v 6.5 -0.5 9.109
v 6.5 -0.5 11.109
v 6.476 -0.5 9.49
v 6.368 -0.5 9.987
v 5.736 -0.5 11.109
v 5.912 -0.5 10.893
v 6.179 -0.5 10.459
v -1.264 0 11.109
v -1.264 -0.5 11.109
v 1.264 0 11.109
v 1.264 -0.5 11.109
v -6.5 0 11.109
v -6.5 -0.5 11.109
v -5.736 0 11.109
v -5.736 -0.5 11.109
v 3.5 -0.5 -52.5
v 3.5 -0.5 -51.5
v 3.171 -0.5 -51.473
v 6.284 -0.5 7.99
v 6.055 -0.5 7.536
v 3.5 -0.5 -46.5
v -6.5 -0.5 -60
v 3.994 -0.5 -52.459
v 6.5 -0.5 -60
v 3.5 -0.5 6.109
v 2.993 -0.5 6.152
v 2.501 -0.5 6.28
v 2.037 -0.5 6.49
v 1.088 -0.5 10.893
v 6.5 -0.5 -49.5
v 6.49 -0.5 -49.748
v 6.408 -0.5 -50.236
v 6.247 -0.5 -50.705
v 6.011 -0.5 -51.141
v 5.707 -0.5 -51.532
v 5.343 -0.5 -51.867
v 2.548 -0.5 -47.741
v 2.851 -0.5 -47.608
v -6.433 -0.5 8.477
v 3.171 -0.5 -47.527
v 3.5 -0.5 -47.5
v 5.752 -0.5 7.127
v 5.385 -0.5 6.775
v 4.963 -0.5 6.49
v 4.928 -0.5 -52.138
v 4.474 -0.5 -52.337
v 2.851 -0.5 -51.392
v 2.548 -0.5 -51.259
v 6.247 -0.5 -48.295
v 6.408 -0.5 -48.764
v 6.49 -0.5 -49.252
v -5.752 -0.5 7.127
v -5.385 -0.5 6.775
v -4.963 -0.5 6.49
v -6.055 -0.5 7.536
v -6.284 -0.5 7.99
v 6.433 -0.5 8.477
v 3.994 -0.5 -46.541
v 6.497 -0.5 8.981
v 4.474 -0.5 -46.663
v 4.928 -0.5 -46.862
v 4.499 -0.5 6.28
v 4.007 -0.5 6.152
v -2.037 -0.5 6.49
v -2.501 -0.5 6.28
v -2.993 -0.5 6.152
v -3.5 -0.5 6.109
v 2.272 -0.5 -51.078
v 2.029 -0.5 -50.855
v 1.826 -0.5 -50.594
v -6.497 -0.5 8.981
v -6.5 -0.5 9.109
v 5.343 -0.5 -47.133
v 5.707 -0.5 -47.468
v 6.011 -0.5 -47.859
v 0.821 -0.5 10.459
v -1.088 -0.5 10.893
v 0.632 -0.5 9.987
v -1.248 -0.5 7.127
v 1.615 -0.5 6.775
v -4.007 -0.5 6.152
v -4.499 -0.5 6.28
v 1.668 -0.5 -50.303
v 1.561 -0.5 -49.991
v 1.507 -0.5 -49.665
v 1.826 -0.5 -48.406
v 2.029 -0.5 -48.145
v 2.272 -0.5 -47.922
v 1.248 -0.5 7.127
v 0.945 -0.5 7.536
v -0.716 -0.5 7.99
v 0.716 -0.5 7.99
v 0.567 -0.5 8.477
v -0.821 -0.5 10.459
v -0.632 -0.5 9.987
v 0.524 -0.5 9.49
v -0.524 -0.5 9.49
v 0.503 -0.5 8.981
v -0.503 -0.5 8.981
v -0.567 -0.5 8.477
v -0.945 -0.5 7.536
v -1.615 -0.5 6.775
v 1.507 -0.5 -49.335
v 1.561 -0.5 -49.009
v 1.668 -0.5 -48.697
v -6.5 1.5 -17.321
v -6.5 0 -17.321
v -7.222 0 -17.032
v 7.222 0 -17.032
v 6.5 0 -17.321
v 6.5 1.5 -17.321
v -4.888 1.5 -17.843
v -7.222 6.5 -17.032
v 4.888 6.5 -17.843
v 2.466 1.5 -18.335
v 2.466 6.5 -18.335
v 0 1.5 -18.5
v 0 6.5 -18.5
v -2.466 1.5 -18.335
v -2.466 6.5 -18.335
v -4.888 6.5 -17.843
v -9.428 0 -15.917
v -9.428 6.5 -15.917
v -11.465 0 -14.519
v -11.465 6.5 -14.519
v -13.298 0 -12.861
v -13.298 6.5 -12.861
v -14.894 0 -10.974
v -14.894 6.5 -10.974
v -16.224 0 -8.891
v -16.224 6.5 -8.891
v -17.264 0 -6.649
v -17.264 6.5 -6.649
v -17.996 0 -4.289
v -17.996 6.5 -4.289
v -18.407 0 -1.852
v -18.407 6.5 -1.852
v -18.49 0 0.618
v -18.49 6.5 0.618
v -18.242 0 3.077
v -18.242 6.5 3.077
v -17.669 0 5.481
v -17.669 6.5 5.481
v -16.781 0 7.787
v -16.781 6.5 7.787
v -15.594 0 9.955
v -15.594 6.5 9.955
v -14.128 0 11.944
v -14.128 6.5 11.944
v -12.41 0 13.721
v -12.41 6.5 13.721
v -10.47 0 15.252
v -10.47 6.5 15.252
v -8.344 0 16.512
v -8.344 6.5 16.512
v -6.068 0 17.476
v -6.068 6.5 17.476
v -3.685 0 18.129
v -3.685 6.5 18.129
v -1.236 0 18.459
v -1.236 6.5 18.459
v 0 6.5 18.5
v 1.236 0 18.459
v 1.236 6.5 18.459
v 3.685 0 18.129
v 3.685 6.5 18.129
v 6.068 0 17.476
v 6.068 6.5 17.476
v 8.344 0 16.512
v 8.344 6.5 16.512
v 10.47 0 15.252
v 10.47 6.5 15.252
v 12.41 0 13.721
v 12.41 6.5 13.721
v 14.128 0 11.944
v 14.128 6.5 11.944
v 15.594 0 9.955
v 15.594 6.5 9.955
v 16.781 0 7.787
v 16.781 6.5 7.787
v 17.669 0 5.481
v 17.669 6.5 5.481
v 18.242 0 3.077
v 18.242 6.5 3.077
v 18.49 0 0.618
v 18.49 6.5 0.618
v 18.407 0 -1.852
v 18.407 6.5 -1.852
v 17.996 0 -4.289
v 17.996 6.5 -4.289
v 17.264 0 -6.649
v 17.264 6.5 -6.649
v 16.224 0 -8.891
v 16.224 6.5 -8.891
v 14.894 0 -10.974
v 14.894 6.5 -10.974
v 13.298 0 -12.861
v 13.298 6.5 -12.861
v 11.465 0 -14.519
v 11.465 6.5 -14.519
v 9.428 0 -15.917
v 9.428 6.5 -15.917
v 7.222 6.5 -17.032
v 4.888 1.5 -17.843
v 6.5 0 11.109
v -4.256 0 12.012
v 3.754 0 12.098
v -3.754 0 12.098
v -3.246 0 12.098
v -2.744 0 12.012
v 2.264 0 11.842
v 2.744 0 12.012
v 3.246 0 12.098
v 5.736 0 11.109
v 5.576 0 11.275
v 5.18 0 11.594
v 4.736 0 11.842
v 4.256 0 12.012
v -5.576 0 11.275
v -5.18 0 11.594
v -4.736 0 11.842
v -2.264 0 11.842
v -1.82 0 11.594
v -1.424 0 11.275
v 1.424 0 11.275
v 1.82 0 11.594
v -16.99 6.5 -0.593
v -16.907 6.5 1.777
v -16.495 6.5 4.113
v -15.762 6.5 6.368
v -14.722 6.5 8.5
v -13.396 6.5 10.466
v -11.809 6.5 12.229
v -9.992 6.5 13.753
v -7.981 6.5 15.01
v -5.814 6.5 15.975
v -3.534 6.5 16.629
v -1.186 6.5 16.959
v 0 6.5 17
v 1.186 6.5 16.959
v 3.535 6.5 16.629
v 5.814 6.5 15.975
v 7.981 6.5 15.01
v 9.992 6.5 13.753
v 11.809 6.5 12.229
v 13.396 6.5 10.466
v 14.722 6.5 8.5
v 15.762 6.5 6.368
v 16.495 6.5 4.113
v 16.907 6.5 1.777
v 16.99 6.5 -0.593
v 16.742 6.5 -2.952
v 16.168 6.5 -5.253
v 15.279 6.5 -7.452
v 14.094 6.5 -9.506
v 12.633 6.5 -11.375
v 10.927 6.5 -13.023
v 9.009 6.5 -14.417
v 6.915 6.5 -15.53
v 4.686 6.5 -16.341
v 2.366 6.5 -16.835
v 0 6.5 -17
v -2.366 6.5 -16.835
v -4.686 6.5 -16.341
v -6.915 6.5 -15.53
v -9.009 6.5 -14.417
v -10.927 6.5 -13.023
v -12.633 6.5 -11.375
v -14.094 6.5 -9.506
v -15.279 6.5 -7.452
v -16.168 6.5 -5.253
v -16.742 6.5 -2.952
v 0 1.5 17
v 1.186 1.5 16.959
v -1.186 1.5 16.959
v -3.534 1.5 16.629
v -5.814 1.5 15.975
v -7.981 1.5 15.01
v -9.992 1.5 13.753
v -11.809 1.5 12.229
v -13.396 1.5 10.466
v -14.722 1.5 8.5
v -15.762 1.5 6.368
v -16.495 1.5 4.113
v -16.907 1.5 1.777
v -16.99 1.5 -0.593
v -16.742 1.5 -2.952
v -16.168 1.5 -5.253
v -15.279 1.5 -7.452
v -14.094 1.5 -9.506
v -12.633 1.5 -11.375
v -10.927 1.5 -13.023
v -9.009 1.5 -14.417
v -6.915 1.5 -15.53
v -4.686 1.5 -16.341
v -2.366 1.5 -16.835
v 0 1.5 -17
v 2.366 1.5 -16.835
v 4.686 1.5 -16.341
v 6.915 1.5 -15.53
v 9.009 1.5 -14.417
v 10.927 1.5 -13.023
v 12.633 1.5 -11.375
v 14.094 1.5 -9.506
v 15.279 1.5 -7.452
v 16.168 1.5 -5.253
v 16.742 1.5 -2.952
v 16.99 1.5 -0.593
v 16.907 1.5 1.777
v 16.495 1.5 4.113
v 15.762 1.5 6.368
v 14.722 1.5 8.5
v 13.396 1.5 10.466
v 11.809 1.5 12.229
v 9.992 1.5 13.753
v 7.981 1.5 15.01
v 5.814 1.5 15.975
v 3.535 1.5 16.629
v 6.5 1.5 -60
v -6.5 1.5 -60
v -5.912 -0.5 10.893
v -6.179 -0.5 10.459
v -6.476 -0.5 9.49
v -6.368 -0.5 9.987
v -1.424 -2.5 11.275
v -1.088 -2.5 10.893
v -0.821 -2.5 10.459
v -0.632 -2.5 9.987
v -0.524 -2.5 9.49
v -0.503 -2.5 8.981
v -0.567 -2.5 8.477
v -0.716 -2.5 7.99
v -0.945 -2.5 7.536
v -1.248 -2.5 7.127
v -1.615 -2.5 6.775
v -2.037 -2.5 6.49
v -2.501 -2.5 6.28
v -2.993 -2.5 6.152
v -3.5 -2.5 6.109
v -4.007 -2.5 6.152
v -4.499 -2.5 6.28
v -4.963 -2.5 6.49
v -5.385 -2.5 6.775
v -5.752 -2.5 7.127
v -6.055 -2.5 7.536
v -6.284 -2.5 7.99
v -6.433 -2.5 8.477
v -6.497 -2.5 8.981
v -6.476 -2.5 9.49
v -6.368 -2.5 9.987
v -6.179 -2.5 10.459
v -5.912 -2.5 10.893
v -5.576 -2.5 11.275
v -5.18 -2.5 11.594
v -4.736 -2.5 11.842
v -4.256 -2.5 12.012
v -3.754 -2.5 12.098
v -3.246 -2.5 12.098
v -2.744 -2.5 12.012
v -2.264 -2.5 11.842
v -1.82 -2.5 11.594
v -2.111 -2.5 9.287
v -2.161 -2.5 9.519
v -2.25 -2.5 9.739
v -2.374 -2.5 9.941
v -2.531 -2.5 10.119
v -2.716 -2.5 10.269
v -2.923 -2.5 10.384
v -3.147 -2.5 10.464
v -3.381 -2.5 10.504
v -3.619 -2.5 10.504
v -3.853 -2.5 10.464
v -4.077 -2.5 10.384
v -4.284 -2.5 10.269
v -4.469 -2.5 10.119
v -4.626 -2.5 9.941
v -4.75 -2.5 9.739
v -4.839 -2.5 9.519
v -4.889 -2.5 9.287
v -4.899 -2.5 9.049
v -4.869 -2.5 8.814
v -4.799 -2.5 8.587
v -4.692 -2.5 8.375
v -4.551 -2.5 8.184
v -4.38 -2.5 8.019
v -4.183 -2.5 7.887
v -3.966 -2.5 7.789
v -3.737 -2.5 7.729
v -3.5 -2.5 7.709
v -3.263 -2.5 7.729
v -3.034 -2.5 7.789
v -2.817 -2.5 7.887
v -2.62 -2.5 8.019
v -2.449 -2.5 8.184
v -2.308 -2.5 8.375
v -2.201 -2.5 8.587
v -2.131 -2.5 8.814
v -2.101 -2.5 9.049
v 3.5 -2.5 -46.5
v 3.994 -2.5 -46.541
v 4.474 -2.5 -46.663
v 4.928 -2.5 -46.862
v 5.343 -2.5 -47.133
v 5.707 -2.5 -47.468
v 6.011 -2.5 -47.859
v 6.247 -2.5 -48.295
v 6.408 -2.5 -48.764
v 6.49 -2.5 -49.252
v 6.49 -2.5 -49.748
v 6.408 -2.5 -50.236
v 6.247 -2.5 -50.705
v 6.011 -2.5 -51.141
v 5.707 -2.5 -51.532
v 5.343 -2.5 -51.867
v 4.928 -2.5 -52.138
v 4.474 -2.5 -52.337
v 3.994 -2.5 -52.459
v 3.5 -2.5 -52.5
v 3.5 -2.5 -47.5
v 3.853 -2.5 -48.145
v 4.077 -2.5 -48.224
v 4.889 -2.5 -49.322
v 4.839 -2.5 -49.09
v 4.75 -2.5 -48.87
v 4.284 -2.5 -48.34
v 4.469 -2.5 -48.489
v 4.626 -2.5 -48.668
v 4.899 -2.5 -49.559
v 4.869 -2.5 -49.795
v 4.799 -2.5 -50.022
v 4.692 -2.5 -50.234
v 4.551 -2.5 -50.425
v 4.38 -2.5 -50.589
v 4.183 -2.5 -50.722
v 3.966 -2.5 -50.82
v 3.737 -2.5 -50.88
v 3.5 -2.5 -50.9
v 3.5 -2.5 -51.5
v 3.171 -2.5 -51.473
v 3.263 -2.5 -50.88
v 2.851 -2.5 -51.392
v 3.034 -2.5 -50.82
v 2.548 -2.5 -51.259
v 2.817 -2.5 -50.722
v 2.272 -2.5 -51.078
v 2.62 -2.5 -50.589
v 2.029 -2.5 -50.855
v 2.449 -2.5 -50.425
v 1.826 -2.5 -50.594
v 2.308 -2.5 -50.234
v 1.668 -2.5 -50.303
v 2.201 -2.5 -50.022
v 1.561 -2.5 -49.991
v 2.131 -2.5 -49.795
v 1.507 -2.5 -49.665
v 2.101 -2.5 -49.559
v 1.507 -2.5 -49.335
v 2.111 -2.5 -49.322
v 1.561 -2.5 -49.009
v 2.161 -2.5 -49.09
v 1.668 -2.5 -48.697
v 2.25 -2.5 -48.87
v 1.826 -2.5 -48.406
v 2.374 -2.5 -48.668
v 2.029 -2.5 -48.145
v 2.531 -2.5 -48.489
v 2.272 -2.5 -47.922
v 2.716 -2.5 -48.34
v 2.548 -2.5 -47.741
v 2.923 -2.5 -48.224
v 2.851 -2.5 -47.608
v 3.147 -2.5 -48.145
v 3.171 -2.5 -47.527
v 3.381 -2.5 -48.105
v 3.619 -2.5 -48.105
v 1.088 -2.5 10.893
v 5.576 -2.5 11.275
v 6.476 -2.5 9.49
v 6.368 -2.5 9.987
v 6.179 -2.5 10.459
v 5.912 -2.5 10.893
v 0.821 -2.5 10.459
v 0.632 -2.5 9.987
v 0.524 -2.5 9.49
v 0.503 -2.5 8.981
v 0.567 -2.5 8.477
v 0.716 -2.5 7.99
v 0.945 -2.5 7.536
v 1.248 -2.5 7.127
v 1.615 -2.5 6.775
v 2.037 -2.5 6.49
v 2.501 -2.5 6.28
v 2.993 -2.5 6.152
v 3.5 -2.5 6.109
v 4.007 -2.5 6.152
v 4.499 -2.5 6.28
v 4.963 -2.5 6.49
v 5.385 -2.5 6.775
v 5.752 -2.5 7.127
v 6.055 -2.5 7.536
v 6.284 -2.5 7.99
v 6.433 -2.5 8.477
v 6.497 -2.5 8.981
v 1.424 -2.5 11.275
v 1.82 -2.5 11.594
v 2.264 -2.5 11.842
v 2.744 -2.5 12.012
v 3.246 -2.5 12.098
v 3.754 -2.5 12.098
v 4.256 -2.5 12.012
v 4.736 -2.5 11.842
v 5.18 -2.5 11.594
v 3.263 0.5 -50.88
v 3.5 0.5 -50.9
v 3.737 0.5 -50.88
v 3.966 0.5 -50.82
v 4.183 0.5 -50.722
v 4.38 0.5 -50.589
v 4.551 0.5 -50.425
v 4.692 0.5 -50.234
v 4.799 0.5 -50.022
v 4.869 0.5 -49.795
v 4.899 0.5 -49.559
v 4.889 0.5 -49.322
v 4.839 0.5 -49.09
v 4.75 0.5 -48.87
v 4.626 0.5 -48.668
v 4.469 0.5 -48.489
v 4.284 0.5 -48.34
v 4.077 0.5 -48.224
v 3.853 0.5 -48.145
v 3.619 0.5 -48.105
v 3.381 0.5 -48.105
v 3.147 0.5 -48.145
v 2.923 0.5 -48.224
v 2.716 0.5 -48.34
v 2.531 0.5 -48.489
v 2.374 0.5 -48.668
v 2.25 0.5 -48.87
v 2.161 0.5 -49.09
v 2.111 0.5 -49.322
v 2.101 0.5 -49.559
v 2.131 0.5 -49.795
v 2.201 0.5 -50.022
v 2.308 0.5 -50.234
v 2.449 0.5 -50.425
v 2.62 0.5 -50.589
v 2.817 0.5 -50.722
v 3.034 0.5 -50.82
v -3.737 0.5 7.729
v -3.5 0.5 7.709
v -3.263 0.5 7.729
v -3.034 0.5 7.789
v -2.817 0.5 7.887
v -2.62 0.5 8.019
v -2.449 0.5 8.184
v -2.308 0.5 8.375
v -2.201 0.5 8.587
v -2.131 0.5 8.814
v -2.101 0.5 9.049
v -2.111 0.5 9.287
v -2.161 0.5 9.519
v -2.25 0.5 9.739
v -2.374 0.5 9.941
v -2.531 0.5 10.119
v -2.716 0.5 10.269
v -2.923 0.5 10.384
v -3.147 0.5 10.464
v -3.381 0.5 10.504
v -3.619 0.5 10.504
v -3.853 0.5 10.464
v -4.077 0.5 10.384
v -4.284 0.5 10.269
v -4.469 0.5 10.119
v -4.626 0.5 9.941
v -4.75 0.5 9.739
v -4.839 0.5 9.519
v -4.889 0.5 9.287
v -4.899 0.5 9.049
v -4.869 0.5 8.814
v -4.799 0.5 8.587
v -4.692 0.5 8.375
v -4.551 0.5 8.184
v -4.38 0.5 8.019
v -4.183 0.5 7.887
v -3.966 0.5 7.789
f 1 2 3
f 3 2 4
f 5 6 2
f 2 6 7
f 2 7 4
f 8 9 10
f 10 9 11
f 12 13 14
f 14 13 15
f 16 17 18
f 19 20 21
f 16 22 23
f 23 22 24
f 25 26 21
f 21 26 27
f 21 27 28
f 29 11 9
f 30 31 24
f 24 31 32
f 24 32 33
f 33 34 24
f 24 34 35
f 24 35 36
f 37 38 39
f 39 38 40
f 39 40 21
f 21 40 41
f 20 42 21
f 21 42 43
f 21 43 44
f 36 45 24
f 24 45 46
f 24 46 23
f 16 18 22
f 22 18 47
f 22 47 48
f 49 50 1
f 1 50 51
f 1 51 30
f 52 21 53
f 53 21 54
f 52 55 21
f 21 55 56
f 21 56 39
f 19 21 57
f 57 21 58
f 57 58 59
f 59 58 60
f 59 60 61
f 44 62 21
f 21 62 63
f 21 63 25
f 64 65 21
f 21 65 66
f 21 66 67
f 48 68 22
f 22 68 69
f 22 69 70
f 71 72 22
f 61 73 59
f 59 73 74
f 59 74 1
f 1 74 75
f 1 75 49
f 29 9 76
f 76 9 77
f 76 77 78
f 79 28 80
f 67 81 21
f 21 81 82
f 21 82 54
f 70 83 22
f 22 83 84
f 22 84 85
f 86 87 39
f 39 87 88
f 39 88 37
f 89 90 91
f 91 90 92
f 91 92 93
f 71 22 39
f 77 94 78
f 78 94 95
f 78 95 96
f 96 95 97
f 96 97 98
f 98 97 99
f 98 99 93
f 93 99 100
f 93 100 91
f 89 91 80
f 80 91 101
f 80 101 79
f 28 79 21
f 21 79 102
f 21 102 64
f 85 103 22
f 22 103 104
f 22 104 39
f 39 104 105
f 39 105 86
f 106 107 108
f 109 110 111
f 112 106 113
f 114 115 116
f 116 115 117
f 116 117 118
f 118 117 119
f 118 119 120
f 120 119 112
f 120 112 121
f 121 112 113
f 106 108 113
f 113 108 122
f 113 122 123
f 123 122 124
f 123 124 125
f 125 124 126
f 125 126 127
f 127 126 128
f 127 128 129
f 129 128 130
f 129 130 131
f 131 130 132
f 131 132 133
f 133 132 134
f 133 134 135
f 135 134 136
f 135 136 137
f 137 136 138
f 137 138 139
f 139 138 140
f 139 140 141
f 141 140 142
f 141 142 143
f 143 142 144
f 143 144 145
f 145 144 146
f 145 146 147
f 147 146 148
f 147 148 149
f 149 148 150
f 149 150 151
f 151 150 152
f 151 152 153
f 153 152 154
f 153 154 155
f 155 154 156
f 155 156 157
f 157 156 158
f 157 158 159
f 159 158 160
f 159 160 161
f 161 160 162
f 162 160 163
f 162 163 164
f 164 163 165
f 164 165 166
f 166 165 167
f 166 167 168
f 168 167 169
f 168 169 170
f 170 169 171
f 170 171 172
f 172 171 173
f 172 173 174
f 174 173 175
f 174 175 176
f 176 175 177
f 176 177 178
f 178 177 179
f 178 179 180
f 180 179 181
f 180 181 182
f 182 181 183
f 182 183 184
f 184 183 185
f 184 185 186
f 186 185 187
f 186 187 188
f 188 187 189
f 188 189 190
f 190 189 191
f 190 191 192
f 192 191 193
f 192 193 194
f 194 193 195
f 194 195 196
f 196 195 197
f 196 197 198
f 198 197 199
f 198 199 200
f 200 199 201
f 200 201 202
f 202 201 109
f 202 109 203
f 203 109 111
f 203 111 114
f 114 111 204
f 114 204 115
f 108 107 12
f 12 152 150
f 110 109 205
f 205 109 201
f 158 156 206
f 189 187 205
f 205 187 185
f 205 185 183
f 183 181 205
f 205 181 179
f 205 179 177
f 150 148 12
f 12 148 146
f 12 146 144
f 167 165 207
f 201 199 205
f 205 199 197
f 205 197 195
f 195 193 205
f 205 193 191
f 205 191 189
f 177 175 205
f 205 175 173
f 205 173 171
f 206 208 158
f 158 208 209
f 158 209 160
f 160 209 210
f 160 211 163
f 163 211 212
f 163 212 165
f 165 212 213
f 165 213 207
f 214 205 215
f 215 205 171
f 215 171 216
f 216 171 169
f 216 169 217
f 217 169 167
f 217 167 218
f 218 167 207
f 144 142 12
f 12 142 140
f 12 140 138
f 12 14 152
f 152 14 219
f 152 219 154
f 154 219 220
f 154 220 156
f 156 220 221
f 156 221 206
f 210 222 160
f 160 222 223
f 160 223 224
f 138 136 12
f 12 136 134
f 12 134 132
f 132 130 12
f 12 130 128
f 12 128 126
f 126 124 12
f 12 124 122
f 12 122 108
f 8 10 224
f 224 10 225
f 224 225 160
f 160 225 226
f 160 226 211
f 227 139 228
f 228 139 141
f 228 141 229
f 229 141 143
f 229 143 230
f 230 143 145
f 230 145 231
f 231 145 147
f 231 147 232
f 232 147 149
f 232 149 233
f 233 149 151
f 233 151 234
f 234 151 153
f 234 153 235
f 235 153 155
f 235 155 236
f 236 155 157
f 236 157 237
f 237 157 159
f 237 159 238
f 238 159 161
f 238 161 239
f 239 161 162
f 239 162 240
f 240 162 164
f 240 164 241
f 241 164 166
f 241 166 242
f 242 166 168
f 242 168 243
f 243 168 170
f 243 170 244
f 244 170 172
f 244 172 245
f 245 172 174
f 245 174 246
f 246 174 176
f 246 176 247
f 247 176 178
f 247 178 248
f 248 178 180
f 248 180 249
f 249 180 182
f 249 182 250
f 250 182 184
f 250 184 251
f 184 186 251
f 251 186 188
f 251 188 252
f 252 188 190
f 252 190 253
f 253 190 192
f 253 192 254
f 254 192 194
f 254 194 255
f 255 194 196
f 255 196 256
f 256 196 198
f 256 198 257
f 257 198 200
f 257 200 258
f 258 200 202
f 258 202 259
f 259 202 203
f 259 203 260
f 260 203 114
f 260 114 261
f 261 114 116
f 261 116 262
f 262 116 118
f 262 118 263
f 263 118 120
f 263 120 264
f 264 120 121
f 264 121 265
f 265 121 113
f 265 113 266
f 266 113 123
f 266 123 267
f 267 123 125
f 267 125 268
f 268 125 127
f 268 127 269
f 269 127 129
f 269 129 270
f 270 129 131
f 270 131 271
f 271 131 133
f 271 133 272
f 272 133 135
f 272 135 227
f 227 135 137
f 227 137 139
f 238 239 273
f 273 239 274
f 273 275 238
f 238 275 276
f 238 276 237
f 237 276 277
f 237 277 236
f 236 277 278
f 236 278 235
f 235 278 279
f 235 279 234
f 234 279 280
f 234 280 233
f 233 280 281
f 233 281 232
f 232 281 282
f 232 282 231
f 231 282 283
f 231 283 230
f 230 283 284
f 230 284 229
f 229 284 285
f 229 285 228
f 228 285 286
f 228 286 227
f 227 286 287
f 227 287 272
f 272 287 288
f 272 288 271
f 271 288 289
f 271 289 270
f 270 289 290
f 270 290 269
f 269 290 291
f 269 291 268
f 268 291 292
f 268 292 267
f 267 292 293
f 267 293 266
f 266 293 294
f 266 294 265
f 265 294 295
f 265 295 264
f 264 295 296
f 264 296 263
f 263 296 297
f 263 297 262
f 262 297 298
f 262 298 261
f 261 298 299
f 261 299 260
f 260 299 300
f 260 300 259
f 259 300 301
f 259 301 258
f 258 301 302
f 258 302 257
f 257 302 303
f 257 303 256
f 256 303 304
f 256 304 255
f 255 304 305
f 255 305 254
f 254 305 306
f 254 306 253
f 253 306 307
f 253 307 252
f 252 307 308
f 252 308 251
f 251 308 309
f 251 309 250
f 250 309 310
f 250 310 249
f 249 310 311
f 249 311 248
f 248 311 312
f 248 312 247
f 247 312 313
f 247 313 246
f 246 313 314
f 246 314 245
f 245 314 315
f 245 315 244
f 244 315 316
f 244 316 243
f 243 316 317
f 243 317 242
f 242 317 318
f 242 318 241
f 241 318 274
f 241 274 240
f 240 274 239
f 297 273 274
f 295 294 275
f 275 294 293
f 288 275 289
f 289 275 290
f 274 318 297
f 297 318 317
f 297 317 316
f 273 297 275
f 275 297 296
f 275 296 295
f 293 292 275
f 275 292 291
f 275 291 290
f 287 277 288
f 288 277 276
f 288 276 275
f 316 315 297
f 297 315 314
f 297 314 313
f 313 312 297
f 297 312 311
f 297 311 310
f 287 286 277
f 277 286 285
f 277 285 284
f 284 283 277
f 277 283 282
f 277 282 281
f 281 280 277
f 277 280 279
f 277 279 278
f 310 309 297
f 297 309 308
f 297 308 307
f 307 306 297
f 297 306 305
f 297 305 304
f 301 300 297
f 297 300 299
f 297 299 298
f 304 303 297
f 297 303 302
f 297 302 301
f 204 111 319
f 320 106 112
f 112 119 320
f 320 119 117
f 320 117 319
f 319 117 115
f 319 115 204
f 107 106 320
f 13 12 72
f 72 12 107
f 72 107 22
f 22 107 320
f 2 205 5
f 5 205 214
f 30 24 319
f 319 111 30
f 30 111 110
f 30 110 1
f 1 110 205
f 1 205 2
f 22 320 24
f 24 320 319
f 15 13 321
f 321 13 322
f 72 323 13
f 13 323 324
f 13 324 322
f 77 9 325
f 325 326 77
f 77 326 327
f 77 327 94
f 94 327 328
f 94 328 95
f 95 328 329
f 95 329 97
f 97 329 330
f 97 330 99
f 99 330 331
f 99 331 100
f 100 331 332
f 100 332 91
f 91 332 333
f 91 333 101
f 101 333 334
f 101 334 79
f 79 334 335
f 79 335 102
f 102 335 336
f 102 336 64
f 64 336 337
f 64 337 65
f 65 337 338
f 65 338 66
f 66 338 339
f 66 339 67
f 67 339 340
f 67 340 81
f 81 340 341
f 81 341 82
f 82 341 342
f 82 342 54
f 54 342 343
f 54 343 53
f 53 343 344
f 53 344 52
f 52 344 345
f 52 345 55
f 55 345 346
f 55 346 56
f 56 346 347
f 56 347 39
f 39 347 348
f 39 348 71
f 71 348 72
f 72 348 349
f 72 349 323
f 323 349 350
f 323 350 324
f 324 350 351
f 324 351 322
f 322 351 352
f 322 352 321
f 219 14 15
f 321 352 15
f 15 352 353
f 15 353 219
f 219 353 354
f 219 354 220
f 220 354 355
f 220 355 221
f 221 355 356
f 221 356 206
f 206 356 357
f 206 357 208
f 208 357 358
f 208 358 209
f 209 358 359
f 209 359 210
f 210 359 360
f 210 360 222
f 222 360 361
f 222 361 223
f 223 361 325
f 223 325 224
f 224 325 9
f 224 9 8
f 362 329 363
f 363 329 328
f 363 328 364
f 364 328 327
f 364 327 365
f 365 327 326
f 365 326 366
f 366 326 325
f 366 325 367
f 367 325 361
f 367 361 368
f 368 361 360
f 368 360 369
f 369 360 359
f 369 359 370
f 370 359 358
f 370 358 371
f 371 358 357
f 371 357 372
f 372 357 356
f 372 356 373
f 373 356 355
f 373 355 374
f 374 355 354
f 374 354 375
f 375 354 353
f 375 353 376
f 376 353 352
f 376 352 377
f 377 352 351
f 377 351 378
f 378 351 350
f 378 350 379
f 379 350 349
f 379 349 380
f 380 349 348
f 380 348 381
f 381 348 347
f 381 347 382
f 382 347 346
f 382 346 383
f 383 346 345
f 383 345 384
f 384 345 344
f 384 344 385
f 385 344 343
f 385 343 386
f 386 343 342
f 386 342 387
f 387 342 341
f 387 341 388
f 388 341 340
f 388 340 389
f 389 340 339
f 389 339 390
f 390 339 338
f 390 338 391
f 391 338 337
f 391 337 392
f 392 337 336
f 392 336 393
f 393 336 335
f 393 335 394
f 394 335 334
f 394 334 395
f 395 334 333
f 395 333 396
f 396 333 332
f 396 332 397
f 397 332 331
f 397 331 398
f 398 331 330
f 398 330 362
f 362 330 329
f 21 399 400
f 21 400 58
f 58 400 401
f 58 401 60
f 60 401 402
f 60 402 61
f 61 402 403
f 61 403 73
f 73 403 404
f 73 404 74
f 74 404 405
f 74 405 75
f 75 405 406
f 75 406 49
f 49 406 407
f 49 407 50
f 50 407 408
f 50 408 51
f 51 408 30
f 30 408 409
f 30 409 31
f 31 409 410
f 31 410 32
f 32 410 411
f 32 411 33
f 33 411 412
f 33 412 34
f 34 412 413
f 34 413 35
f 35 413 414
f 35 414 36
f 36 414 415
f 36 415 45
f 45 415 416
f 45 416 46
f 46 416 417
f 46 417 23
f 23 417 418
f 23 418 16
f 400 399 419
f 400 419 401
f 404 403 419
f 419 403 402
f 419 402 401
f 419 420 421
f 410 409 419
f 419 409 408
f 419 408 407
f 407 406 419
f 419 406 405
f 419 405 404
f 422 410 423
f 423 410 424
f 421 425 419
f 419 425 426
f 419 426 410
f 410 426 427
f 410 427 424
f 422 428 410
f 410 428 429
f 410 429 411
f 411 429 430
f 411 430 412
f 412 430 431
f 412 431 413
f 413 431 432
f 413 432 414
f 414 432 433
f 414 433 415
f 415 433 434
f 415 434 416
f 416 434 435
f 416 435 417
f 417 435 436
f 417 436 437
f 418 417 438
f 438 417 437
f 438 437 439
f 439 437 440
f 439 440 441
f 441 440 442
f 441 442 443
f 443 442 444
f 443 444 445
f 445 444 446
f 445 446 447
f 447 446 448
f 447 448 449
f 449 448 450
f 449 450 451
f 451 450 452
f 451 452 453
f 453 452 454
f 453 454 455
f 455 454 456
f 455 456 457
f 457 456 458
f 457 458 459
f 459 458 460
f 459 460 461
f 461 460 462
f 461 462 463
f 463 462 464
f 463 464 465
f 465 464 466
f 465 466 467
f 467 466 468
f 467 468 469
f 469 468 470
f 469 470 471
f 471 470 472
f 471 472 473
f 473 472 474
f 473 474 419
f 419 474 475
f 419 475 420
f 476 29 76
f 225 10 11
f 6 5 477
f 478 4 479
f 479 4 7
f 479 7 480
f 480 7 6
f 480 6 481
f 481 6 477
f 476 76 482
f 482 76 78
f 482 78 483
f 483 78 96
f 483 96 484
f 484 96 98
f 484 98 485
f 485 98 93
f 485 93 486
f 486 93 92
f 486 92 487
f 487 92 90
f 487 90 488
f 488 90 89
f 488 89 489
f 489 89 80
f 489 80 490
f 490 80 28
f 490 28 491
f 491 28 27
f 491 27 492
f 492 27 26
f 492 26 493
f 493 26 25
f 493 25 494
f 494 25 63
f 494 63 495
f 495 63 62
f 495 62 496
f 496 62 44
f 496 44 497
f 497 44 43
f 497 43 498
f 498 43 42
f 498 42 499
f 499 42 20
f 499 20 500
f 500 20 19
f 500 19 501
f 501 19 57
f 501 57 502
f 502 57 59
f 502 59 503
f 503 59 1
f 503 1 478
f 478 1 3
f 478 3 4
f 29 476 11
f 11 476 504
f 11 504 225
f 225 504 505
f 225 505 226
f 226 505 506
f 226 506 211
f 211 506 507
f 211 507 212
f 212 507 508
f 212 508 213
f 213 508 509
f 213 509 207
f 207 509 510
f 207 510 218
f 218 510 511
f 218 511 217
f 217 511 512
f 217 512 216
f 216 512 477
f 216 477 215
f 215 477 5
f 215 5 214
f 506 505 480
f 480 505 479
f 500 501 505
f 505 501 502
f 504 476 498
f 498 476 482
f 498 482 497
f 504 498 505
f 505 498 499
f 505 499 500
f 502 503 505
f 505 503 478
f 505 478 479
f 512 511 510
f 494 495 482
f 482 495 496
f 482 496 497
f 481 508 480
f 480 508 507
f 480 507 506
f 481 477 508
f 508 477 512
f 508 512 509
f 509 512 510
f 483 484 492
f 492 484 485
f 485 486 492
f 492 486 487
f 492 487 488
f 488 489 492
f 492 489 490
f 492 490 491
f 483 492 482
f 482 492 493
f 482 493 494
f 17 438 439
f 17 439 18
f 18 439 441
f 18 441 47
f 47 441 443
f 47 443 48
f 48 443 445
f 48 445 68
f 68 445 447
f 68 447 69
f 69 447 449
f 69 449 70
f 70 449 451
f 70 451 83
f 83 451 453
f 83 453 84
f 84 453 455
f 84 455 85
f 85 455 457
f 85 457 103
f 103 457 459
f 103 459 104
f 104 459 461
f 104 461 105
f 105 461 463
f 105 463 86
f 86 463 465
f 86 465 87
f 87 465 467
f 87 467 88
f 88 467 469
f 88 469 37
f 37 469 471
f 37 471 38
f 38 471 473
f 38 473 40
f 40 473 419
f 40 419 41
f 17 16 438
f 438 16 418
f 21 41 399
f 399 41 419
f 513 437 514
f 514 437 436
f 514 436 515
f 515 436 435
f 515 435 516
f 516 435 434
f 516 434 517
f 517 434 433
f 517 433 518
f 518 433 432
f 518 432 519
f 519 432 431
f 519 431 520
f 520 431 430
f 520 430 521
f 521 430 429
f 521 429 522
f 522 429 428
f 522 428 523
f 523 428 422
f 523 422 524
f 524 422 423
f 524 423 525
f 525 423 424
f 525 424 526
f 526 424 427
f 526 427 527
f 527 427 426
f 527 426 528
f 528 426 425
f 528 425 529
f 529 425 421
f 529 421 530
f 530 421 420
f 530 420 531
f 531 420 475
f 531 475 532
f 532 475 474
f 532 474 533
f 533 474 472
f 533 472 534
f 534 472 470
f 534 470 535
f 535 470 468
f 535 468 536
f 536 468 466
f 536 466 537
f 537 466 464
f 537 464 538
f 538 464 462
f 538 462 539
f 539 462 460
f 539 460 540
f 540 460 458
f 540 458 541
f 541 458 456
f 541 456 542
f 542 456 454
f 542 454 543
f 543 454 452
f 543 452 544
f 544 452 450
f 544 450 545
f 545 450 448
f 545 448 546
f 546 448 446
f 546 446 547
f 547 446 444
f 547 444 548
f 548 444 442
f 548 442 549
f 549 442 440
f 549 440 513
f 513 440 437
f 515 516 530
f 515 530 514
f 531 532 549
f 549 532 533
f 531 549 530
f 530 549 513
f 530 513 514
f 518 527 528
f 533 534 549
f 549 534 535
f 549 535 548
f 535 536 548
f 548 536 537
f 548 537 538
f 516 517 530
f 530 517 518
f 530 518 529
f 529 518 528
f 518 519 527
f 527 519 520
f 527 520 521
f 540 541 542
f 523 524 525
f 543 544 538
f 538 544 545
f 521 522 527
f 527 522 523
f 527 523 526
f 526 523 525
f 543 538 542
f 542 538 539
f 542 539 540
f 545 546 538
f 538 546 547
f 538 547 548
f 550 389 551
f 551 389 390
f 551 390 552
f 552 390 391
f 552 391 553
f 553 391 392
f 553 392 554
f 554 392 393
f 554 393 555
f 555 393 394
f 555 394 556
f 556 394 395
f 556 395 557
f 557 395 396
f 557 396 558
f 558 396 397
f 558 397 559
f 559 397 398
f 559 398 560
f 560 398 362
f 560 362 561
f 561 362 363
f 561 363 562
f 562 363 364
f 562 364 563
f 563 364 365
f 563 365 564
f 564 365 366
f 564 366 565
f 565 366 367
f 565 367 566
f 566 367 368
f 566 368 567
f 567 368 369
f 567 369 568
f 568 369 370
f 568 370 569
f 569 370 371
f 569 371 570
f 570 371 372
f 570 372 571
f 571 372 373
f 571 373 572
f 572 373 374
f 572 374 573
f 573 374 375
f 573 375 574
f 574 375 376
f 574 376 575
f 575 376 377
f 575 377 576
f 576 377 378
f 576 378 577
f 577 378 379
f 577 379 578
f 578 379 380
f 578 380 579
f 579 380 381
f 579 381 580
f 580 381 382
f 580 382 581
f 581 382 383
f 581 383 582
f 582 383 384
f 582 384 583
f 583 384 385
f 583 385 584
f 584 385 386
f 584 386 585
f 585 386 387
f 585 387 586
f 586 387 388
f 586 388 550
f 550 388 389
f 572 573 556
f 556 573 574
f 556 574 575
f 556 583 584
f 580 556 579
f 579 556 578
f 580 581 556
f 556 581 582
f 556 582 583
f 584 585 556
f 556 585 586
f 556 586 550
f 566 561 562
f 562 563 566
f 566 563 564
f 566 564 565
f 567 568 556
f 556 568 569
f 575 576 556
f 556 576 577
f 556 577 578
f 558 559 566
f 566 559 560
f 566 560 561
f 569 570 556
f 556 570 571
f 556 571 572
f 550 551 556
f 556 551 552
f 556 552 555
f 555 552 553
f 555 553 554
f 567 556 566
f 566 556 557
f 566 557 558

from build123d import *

# Parameters (mm, degrees)
SKETCH1_R                = 18.5
BOSS_EXTRUDE1_DEPTH      = 1.5
SKETCH2_R                = 18.5
SKETCH2_R_2              = 17
BOSS_EXTRUDE2_DEPTH      = 5
SKETCH3_W                = 13
SKETCH3_H                = 71.108724116
BOSS_EXTRUDE3_DEPTH      = 0.5
BOSS_EXTRUDE3_DEPTH_BACK = 1.5
SKETCH4_R                = 3
BOSS_EXTRUDE4_DEPTH      = 2
BOSS_EXTRUDE4_DEPTH_BACK = 0.5
CUT_EXTRUDE1_DEPTH       = 2
SKETCH7_R                = 1.4
CUT_EXTRUDE2_DEPTH       = 3


with BuildPart() as part:
    # Sketch1 → Boss-Extrude1 (new body)
    with BuildSketch(Plane(origin=(0, 0, 0), x_dir=(1, 0, 0), z_dir=(0, 1, 0))):
        Circle(SKETCH1_R)
    extrude(amount=BOSS_EXTRUDE1_DEPTH)

    # Sketch2 → Boss-Extrude2 (add)
    with BuildSketch(Plane(origin=(0, 1.5, 0), x_dir=(1, 0, 0), z_dir=(0, 1, 0))):
        Circle(SKETCH2_R)
        Circle(SKETCH2_R_2, mode=Mode.SUBTRACT)
    extrude(amount=BOSS_EXTRUDE2_DEPTH)

    # Sketch3 → Boss-Extrude3 (add, two sides)
    with BuildSketch(Plane(origin=(0, 0, 0), x_dir=(-1, 0, 0), z_dir=(0, -1, 0))) as boss_extrude3_sk:
        with Locations((0, 24.445637942)):
            Rectangle(SKETCH3_W, SKETCH3_H)
    extrude(amount=BOSS_EXTRUDE3_DEPTH)
    extrude(boss_extrude3_sk.sketch, amount=-BOSS_EXTRUDE3_DEPTH_BACK)

    # Sketch4 → Boss-Extrude4 (add, two sides)
    with BuildSketch(Plane(origin=(0, -0.5, 0), x_dir=(-1, 0, 0), z_dir=(0, -1, 0))) as boss_extrude4_sk:
        with Locations((3.5, -9.108724116)):
            Circle(SKETCH4_R)
        with Locations((-3.5, 49.5)):
            Circle(SKETCH4_R)
        with Locations((-3.5, -9.108724116)):
            Circle(SKETCH4_R)
    extrude(amount=BOSS_EXTRUDE4_DEPTH)
    extrude(boss_extrude4_sk.sketch, amount=-BOSS_EXTRUDE4_DEPTH_BACK)

    # Sketch6 → Cut-Extrude1 (cut)
    with BuildSketch(Plane(origin=(0, -2.5, 0), x_dir=(-1, 0, 0), z_dir=(0, -1, 0))):
        with BuildLine():
            Line((-3.5, 51.5), (-3.5, 52.5))
            ThreePointArc((-3.5, 52.5), (-0.5, 49.5), (-3.5, 46.5))
            Line((-3.5, 46.5), (-3.5, 47.5))
            ThreePointArc((-3.5, 47.5), (-1.5, 49.5), (-3.5, 51.5))
        make_face()
    extrude(amount=-CUT_EXTRUDE1_DEPTH, mode=Mode.SUBTRACT)

    # Sketch7 → Cut-Extrude2 (cut)
    with BuildSketch(Plane(origin=(0, -2.5, 0), x_dir=(-1, 0, 0), z_dir=(0, -1, 0))):
        with Locations((-3.5, 49.5)):
            Circle(SKETCH7_R)
        with Locations((3.5, -9.108724116)):
            Circle(SKETCH7_R)
    extrude(amount=-CUT_EXTRUDE2_DEPTH, mode=Mode.SUBTRACT)


solid = part.part
